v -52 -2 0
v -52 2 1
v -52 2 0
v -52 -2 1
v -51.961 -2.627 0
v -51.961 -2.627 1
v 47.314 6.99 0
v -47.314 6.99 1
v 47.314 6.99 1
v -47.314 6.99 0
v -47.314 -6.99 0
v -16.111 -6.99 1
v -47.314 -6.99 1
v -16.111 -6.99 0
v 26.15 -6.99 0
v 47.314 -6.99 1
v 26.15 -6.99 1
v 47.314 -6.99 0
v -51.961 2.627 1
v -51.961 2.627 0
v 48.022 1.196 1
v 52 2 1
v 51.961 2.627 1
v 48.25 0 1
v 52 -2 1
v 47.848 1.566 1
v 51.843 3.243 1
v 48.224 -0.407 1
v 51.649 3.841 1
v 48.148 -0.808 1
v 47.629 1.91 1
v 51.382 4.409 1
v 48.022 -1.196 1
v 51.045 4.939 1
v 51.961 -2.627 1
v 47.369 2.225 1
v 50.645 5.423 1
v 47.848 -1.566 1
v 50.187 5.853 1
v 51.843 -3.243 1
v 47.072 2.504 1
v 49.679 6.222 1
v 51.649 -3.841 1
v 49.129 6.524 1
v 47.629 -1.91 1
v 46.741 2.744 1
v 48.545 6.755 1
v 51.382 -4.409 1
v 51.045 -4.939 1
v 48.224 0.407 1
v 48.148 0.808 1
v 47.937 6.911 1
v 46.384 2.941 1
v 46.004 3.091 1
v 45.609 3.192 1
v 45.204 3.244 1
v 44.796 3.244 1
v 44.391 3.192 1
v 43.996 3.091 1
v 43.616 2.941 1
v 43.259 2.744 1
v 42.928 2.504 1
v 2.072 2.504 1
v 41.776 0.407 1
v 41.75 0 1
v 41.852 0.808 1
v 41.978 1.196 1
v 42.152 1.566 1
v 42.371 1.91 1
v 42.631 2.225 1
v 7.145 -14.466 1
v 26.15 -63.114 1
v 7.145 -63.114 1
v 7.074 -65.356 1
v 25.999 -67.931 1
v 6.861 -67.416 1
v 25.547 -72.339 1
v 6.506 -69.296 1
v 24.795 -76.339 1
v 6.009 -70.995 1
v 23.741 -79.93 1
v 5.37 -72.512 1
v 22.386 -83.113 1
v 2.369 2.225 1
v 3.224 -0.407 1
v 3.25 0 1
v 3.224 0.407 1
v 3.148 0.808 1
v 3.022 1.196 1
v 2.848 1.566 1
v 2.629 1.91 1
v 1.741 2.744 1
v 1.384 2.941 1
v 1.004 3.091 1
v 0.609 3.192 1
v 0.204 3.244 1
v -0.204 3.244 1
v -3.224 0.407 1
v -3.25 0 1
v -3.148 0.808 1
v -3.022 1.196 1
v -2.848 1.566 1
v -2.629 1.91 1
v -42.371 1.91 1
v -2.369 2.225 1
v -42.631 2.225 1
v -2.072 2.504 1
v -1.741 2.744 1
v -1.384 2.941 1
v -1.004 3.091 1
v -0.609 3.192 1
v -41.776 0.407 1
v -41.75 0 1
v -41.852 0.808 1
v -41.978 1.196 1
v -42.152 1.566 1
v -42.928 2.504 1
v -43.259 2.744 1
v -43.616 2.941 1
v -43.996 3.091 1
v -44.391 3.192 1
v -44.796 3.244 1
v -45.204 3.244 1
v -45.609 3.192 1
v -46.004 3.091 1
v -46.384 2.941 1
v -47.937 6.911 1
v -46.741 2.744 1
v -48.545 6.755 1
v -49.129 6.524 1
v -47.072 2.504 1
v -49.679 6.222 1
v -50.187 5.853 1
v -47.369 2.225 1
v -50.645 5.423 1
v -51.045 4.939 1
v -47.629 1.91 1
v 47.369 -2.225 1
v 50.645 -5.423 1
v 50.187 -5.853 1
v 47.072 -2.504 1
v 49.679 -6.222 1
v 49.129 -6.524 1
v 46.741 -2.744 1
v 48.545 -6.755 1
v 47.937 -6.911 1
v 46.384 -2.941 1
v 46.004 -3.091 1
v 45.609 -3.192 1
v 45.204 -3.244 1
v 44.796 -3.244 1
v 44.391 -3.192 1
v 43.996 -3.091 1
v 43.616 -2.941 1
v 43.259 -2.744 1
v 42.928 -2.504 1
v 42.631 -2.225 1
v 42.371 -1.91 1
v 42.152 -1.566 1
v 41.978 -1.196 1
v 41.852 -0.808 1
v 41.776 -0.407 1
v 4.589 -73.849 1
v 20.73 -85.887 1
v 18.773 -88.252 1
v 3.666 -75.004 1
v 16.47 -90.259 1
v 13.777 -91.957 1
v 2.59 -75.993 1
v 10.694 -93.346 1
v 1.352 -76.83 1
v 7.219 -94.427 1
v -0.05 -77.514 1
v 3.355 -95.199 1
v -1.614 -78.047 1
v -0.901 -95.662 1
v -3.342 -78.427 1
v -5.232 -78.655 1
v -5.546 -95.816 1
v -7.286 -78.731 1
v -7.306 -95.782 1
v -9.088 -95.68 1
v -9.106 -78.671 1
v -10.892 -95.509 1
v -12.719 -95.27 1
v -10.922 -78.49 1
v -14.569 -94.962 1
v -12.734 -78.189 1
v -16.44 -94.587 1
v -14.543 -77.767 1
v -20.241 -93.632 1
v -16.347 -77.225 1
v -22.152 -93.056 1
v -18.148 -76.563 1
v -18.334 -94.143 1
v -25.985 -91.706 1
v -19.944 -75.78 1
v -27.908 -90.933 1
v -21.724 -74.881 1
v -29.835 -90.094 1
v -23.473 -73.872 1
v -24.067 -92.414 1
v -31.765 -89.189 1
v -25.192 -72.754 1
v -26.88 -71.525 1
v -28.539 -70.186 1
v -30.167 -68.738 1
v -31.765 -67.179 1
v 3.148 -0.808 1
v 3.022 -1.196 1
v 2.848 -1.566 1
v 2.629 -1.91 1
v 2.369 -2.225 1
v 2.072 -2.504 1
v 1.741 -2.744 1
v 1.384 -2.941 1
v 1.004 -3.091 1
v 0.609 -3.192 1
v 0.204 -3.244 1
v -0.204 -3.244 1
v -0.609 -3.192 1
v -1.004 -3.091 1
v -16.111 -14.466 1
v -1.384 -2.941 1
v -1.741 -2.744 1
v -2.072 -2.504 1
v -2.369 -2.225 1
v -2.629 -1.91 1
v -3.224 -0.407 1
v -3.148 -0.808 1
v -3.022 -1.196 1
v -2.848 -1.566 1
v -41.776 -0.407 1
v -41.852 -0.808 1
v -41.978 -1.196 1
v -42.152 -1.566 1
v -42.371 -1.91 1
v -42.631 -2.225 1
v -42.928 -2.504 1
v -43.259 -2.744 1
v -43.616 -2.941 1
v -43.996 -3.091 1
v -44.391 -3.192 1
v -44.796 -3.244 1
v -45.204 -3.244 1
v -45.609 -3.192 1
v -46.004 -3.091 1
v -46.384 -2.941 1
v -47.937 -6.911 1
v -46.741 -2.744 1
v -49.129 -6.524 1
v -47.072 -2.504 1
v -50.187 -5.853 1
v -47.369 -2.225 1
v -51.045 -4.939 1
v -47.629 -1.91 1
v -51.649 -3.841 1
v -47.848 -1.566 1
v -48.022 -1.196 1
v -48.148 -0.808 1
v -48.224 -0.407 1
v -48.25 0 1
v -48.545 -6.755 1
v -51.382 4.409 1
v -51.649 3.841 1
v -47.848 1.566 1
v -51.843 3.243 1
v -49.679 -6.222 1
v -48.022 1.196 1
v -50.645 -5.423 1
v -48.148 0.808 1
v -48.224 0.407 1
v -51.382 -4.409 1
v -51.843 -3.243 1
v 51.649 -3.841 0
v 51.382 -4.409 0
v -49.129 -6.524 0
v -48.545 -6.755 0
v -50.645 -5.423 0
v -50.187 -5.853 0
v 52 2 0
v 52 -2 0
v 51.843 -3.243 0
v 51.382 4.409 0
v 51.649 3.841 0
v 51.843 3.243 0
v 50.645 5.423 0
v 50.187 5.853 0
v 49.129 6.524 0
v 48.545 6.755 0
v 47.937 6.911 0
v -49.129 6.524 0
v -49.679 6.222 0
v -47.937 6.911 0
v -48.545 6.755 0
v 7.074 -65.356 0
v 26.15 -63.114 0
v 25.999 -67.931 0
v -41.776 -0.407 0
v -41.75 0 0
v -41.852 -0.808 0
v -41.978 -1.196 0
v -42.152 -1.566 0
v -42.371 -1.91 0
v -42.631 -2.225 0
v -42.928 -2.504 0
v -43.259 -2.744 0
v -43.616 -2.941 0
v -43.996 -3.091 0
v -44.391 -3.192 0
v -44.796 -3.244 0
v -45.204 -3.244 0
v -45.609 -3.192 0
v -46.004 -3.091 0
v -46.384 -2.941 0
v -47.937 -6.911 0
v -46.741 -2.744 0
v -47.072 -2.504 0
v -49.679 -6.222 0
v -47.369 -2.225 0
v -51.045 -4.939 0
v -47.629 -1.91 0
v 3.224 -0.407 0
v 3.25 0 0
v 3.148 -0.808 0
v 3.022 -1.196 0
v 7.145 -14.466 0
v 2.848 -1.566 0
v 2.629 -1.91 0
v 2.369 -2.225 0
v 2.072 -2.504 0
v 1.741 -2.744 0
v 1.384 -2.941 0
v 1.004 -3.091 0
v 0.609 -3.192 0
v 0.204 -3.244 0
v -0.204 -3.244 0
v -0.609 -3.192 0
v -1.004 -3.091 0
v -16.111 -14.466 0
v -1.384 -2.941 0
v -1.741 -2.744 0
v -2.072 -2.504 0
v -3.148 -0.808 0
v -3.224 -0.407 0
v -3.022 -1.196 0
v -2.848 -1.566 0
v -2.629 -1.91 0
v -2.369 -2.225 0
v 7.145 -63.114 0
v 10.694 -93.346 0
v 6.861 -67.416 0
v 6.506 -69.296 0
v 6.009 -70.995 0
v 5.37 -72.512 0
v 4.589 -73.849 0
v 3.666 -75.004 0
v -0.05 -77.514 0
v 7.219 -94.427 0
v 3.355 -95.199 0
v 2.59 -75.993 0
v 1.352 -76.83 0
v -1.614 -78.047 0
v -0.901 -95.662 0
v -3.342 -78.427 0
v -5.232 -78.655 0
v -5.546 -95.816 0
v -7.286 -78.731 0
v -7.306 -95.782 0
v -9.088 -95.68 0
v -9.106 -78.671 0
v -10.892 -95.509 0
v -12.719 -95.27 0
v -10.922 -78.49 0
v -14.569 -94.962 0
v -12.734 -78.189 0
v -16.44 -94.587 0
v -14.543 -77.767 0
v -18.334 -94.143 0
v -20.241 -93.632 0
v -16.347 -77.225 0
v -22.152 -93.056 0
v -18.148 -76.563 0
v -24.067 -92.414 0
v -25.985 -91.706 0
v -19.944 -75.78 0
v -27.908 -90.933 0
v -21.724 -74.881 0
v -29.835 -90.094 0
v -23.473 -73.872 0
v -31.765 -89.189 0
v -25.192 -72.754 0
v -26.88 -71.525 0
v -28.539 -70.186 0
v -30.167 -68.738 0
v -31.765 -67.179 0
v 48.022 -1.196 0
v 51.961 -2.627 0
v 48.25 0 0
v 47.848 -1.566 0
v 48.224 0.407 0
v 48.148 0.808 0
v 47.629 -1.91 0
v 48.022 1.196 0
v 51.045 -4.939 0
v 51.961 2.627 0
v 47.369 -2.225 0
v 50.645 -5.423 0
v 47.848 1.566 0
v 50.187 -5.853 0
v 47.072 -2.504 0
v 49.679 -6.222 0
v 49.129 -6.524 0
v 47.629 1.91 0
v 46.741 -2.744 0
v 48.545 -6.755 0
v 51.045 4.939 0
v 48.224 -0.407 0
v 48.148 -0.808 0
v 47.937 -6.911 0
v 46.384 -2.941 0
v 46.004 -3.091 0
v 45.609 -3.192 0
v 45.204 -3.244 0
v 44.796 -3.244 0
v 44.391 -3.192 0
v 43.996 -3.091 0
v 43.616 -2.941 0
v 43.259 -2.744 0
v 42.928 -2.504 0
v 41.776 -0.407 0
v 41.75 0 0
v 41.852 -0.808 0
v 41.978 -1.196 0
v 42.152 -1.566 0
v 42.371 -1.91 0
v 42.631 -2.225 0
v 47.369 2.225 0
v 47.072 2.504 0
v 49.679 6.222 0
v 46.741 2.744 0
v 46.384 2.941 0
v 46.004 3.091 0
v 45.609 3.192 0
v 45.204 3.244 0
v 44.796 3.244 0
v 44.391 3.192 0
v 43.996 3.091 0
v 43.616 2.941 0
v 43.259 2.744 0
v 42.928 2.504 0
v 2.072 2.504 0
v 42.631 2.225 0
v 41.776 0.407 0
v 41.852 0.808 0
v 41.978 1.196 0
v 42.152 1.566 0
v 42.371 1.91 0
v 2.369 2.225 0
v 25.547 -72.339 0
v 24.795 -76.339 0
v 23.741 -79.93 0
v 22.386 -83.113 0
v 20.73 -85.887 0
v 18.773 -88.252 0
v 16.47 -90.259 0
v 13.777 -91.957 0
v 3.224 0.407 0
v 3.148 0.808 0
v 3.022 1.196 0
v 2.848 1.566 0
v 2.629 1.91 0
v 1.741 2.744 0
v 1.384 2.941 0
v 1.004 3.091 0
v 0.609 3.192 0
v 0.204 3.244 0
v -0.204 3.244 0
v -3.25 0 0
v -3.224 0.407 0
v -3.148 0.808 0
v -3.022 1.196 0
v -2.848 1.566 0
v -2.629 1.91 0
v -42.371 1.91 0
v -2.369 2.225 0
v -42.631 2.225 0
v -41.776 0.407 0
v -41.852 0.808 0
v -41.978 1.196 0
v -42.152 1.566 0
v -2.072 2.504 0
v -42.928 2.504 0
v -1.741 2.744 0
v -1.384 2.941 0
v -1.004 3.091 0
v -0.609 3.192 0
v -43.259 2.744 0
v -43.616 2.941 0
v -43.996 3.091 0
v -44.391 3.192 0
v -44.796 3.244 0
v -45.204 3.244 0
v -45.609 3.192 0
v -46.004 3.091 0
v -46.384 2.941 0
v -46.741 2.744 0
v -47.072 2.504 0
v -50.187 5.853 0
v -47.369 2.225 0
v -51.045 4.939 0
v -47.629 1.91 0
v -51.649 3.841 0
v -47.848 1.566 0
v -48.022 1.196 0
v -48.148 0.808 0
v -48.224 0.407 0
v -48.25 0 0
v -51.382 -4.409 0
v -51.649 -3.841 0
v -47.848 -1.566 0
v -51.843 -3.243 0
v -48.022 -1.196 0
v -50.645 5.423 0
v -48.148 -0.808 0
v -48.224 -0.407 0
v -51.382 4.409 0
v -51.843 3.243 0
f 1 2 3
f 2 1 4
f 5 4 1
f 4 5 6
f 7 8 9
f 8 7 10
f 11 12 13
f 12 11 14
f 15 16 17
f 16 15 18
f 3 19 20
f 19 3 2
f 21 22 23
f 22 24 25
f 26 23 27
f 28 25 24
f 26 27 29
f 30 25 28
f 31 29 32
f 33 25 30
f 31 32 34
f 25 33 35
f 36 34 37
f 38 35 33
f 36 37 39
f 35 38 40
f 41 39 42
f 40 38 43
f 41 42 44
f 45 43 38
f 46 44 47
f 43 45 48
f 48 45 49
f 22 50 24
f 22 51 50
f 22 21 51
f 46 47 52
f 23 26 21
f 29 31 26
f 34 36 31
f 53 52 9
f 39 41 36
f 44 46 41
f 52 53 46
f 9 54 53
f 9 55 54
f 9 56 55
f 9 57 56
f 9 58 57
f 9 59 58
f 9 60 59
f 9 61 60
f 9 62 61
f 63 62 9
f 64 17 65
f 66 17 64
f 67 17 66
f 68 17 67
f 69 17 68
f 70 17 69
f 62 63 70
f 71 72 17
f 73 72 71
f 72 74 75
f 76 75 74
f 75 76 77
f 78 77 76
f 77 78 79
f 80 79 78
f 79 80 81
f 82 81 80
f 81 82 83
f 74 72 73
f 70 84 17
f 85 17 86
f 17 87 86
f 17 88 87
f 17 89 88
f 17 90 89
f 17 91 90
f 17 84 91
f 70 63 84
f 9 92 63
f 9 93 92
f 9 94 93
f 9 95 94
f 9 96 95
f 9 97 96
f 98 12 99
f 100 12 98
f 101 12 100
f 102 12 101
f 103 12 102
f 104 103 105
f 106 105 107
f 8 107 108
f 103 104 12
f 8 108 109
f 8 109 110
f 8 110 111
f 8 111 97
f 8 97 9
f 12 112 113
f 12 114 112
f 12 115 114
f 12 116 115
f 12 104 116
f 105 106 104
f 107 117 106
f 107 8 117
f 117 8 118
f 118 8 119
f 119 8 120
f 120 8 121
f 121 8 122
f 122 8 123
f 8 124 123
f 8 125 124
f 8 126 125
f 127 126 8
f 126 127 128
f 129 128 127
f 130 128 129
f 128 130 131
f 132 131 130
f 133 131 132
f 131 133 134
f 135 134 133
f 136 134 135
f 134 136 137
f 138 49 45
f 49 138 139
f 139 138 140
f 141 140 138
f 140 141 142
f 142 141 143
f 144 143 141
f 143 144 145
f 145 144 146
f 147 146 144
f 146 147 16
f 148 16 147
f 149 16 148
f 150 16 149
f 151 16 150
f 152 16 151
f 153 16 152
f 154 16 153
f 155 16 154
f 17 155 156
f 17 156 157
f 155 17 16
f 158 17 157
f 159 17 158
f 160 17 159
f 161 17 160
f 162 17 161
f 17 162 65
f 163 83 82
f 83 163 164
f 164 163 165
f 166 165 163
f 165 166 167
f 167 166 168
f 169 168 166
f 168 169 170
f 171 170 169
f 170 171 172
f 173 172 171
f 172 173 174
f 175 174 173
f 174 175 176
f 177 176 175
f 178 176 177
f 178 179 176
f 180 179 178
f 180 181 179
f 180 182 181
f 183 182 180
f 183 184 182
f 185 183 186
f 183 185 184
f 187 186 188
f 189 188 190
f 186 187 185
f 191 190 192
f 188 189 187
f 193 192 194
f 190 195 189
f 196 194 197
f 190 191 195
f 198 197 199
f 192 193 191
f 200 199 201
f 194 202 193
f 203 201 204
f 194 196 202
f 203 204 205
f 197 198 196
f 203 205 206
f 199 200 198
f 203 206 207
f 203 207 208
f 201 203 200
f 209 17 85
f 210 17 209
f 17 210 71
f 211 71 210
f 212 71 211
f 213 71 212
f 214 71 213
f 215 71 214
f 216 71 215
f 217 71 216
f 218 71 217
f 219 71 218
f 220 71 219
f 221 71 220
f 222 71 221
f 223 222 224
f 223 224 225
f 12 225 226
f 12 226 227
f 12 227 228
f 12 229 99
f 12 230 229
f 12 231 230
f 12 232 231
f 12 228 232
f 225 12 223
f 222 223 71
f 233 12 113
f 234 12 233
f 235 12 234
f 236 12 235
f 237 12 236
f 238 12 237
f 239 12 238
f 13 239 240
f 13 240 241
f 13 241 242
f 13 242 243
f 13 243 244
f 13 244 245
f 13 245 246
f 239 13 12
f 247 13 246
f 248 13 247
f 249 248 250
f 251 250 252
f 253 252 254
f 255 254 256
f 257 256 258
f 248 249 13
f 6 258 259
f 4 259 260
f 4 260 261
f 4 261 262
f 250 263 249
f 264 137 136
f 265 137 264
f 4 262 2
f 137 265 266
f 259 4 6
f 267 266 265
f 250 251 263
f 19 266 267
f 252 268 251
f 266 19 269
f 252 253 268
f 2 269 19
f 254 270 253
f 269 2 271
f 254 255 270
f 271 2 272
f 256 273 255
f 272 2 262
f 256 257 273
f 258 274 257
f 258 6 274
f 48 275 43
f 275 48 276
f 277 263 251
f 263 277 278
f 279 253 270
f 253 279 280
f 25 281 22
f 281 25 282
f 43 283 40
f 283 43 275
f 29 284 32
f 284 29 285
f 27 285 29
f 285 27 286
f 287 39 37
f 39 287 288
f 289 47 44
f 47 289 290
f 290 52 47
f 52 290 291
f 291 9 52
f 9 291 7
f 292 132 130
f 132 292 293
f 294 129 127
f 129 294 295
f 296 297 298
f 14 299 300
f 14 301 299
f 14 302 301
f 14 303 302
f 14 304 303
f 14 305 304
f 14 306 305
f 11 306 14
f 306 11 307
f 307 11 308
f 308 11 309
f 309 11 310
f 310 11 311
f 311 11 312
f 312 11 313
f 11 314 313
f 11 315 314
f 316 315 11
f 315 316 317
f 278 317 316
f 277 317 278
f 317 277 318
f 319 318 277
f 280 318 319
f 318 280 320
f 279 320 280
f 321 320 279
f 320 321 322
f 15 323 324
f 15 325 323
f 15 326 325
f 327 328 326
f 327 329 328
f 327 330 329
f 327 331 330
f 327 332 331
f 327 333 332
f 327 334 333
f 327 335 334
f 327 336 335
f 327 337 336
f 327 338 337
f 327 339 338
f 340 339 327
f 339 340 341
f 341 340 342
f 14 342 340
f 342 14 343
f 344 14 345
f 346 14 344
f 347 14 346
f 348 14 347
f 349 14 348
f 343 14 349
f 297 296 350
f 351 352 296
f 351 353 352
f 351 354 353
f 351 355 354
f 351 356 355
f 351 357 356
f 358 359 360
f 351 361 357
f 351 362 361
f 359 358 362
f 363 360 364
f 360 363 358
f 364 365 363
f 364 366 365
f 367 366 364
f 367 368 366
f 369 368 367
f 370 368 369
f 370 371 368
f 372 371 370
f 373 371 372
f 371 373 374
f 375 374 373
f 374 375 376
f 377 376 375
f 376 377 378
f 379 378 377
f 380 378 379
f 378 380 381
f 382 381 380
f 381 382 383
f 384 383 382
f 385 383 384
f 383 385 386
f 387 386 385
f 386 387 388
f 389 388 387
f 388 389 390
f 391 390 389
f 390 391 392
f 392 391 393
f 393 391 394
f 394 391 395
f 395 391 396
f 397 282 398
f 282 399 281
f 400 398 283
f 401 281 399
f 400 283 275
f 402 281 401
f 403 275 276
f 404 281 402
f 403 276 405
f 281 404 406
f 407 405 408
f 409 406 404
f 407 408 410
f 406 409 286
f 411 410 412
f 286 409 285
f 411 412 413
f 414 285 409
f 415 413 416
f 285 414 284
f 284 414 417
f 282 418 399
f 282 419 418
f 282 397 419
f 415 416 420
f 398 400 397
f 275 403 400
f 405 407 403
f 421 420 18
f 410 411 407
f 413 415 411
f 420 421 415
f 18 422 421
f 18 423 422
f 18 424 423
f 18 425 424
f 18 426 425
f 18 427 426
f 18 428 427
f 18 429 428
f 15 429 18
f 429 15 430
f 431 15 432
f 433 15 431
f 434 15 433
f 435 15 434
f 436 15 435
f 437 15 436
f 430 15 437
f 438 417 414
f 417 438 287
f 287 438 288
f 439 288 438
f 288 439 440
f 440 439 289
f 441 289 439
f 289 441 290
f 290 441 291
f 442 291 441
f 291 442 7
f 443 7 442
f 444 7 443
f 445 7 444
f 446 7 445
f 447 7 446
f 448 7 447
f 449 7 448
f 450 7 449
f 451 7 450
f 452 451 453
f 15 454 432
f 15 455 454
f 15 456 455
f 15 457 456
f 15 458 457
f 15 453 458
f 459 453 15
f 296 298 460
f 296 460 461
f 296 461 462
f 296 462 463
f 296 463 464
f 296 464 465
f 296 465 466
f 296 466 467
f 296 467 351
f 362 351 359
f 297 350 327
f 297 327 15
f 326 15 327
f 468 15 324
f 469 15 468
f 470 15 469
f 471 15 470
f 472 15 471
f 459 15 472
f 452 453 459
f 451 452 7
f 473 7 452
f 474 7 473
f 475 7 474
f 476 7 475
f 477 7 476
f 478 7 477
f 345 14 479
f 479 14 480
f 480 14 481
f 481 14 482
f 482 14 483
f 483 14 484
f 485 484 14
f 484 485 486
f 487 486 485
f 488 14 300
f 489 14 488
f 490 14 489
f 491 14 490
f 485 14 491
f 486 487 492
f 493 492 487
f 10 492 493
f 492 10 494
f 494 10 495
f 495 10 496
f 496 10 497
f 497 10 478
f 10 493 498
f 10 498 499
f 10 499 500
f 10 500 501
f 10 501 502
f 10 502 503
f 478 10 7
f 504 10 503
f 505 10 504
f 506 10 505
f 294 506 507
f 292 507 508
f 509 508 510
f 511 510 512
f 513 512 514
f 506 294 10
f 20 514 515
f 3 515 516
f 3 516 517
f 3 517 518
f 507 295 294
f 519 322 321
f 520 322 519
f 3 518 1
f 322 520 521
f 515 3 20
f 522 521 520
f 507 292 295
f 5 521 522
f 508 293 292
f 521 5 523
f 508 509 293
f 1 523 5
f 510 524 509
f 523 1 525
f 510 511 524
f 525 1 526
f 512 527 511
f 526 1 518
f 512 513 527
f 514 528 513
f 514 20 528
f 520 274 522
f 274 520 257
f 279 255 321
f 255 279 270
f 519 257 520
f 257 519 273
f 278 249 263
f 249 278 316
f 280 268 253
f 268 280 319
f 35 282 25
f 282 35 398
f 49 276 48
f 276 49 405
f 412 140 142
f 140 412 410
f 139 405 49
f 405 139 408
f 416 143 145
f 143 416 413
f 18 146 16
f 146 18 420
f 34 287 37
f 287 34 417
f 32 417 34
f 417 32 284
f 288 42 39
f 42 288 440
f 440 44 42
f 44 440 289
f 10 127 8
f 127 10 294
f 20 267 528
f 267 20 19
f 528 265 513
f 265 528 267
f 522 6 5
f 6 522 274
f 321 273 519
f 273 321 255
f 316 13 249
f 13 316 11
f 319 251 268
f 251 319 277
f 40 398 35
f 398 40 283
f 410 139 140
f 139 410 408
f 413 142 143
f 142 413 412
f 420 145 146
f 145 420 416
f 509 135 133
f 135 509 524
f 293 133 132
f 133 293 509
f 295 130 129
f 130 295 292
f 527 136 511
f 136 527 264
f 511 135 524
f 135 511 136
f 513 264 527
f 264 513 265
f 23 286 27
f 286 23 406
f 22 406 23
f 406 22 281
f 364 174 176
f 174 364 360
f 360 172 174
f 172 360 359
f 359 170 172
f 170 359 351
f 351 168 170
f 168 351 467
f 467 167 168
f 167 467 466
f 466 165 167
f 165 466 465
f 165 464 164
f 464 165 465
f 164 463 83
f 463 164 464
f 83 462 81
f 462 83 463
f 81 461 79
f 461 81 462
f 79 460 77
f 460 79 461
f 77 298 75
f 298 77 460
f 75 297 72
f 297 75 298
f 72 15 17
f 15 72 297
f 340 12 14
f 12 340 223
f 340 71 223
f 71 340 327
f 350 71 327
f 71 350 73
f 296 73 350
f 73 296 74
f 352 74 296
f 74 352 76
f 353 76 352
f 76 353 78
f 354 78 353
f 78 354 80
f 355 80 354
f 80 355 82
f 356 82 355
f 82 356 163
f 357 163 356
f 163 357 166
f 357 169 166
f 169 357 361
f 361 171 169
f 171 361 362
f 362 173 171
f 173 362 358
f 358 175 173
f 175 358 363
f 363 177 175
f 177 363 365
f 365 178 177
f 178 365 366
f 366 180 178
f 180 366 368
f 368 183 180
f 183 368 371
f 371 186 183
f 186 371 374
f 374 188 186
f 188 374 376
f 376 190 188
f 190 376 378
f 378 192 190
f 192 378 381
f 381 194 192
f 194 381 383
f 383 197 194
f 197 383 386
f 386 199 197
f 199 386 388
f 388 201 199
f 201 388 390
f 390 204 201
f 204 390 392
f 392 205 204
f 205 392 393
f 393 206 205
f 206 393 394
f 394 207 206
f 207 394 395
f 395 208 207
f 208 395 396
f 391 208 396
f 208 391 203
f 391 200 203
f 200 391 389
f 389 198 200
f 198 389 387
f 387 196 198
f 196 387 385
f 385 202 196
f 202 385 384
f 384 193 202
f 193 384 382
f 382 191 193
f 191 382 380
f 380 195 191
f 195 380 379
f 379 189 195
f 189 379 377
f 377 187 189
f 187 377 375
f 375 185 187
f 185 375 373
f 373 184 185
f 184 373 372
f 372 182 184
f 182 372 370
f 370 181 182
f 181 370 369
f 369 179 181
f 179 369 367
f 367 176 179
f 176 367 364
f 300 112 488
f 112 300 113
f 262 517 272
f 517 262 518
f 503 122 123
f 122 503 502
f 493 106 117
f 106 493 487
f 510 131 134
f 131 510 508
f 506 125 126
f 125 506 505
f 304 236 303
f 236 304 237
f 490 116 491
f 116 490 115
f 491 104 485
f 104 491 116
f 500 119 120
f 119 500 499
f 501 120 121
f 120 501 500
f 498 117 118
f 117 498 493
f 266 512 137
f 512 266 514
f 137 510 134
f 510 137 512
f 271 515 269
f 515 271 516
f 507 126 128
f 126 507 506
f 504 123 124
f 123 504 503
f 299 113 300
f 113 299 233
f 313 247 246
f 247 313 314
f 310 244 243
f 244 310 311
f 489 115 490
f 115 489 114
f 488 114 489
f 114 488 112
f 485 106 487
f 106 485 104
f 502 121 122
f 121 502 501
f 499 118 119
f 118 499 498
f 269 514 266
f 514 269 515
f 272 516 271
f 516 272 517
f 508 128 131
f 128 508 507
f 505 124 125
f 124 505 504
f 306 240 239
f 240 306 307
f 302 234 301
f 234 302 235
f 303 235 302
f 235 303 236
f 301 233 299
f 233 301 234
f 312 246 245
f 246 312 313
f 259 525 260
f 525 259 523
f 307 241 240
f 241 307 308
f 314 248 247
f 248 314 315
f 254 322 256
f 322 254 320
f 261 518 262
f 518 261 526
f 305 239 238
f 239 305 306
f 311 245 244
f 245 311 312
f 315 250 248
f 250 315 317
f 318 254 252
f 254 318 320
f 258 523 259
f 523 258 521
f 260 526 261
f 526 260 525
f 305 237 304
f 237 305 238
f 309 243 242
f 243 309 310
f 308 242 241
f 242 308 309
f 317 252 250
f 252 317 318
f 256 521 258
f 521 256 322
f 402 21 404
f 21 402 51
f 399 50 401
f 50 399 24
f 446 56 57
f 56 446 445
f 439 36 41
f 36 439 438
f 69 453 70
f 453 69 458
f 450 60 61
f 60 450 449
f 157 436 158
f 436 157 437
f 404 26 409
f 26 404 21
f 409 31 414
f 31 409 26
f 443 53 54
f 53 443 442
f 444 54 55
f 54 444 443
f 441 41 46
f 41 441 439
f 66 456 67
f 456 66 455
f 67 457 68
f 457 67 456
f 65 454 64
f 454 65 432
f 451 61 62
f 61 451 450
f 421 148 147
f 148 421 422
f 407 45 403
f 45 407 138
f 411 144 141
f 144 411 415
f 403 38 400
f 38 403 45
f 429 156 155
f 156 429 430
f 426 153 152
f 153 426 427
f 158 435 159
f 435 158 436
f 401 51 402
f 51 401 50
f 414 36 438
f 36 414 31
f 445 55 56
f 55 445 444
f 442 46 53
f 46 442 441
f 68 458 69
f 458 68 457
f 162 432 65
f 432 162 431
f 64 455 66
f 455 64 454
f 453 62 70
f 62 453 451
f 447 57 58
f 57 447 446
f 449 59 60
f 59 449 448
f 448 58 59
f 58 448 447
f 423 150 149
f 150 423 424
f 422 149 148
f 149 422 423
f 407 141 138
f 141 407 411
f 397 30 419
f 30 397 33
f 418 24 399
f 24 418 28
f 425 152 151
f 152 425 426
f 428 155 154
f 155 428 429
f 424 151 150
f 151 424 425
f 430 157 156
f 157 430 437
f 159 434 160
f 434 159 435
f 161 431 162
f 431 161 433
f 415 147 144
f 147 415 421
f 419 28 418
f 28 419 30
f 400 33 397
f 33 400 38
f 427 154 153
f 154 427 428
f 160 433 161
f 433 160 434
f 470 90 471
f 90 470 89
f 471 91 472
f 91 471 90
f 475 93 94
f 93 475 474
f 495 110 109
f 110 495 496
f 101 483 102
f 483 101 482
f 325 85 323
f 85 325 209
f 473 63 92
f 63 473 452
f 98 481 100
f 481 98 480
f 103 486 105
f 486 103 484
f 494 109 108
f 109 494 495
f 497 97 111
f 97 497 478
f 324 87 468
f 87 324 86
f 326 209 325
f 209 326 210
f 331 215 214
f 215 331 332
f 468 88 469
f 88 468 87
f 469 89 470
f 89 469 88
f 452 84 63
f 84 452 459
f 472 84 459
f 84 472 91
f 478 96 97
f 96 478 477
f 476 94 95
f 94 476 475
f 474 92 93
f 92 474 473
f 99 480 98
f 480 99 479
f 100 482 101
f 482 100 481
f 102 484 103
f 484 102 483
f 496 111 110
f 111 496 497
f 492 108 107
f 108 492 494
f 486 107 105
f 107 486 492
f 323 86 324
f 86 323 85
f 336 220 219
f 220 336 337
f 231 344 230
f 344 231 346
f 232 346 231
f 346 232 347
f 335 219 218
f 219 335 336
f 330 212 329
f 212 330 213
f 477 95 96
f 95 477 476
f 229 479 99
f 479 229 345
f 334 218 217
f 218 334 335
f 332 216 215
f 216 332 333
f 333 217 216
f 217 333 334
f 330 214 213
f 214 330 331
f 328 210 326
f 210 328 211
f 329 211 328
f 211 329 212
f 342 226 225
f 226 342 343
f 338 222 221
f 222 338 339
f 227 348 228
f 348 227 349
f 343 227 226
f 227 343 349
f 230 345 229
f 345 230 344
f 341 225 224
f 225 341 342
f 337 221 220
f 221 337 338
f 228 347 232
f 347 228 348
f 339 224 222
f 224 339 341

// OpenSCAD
$fn = 50;


difference() {
	union() {
		translate(v = [0, 0, 0]) {
			rotate(a = [0, 0, 0]) {
				hull() {
					translate(v = [-47.0000000000, 2.0000000000, 0]) {
						rotate(a = [0, 0, 0]) {
							translate(v = [0, 0, 0]) {
								rotate(a = [0, 0, 0]) {
									cylinder(h = 1, r = 5);
								}
							}
						}
					}
					translate(v = [47.0000000000, 2.0000000000, 0]) {
						rotate(a = [0, 0, 0]) {
							translate(v = [0, 0, 0]) {
								rotate(a = [0, 0, 0]) {
									cylinder(h = 1, r = 5);
								}
							}
						}
					}
					translate(v = [-47.0000000000, -2.0000000000, 0]) {
						rotate(a = [0, 0, 0]) {
							translate(v = [0, 0, 0]) {
								rotate(a = [0, 0, 0]) {
									cylinder(h = 1, r = 5);
								}
							}
						}
					}
					translate(v = [47.0000000000, -2.0000000000, 0]) {
						rotate(a = [0, 0, 0]) {
							translate(v = [0, 0, 0]) {
								rotate(a = [0, 0, 0]) {
									cylinder(h = 1, r = 5);
								}
							}
						}
					}
				}
			}
		}
		translate(v = [0, 0, 0]) {
			rotate(a = [0, 0, 0]) {
				linear_extrude(height = 1) {
					text(font = "DejaVu Sans Mono:style=Bold", halign = "center", size = 95, text = "J", valign = "top");
				}
			}
		}
	}
	union() {
		translate(v = [-45.0000000000, 0.0000000000, -125.0000000000]) {
			rotate(a = [0, 0, 0]) {
				cylinder(h = 250, r = 3.2500000000);
			}
		}
		translate(v = [45.0000000000, 0.0000000000, -125.0000000000]) {
			rotate(a = [0, 0, 0]) {
				cylinder(h = 250, r = 3.2500000000);
			}
		}
		translate(v = [45.0000000000, 0.0000000000, -125.0000000000]) {
			rotate(a = [0, 0, 0]) {
				cylinder(h = 250, r = 3.2500000000);
			}
		}
		translate(v = [0, 0, -125.0000000000]) {
			rotate(a = [0, 0, 0]) {
				cylinder(h = 250, r = 3.2500000000);
			}
		}
	}
}
